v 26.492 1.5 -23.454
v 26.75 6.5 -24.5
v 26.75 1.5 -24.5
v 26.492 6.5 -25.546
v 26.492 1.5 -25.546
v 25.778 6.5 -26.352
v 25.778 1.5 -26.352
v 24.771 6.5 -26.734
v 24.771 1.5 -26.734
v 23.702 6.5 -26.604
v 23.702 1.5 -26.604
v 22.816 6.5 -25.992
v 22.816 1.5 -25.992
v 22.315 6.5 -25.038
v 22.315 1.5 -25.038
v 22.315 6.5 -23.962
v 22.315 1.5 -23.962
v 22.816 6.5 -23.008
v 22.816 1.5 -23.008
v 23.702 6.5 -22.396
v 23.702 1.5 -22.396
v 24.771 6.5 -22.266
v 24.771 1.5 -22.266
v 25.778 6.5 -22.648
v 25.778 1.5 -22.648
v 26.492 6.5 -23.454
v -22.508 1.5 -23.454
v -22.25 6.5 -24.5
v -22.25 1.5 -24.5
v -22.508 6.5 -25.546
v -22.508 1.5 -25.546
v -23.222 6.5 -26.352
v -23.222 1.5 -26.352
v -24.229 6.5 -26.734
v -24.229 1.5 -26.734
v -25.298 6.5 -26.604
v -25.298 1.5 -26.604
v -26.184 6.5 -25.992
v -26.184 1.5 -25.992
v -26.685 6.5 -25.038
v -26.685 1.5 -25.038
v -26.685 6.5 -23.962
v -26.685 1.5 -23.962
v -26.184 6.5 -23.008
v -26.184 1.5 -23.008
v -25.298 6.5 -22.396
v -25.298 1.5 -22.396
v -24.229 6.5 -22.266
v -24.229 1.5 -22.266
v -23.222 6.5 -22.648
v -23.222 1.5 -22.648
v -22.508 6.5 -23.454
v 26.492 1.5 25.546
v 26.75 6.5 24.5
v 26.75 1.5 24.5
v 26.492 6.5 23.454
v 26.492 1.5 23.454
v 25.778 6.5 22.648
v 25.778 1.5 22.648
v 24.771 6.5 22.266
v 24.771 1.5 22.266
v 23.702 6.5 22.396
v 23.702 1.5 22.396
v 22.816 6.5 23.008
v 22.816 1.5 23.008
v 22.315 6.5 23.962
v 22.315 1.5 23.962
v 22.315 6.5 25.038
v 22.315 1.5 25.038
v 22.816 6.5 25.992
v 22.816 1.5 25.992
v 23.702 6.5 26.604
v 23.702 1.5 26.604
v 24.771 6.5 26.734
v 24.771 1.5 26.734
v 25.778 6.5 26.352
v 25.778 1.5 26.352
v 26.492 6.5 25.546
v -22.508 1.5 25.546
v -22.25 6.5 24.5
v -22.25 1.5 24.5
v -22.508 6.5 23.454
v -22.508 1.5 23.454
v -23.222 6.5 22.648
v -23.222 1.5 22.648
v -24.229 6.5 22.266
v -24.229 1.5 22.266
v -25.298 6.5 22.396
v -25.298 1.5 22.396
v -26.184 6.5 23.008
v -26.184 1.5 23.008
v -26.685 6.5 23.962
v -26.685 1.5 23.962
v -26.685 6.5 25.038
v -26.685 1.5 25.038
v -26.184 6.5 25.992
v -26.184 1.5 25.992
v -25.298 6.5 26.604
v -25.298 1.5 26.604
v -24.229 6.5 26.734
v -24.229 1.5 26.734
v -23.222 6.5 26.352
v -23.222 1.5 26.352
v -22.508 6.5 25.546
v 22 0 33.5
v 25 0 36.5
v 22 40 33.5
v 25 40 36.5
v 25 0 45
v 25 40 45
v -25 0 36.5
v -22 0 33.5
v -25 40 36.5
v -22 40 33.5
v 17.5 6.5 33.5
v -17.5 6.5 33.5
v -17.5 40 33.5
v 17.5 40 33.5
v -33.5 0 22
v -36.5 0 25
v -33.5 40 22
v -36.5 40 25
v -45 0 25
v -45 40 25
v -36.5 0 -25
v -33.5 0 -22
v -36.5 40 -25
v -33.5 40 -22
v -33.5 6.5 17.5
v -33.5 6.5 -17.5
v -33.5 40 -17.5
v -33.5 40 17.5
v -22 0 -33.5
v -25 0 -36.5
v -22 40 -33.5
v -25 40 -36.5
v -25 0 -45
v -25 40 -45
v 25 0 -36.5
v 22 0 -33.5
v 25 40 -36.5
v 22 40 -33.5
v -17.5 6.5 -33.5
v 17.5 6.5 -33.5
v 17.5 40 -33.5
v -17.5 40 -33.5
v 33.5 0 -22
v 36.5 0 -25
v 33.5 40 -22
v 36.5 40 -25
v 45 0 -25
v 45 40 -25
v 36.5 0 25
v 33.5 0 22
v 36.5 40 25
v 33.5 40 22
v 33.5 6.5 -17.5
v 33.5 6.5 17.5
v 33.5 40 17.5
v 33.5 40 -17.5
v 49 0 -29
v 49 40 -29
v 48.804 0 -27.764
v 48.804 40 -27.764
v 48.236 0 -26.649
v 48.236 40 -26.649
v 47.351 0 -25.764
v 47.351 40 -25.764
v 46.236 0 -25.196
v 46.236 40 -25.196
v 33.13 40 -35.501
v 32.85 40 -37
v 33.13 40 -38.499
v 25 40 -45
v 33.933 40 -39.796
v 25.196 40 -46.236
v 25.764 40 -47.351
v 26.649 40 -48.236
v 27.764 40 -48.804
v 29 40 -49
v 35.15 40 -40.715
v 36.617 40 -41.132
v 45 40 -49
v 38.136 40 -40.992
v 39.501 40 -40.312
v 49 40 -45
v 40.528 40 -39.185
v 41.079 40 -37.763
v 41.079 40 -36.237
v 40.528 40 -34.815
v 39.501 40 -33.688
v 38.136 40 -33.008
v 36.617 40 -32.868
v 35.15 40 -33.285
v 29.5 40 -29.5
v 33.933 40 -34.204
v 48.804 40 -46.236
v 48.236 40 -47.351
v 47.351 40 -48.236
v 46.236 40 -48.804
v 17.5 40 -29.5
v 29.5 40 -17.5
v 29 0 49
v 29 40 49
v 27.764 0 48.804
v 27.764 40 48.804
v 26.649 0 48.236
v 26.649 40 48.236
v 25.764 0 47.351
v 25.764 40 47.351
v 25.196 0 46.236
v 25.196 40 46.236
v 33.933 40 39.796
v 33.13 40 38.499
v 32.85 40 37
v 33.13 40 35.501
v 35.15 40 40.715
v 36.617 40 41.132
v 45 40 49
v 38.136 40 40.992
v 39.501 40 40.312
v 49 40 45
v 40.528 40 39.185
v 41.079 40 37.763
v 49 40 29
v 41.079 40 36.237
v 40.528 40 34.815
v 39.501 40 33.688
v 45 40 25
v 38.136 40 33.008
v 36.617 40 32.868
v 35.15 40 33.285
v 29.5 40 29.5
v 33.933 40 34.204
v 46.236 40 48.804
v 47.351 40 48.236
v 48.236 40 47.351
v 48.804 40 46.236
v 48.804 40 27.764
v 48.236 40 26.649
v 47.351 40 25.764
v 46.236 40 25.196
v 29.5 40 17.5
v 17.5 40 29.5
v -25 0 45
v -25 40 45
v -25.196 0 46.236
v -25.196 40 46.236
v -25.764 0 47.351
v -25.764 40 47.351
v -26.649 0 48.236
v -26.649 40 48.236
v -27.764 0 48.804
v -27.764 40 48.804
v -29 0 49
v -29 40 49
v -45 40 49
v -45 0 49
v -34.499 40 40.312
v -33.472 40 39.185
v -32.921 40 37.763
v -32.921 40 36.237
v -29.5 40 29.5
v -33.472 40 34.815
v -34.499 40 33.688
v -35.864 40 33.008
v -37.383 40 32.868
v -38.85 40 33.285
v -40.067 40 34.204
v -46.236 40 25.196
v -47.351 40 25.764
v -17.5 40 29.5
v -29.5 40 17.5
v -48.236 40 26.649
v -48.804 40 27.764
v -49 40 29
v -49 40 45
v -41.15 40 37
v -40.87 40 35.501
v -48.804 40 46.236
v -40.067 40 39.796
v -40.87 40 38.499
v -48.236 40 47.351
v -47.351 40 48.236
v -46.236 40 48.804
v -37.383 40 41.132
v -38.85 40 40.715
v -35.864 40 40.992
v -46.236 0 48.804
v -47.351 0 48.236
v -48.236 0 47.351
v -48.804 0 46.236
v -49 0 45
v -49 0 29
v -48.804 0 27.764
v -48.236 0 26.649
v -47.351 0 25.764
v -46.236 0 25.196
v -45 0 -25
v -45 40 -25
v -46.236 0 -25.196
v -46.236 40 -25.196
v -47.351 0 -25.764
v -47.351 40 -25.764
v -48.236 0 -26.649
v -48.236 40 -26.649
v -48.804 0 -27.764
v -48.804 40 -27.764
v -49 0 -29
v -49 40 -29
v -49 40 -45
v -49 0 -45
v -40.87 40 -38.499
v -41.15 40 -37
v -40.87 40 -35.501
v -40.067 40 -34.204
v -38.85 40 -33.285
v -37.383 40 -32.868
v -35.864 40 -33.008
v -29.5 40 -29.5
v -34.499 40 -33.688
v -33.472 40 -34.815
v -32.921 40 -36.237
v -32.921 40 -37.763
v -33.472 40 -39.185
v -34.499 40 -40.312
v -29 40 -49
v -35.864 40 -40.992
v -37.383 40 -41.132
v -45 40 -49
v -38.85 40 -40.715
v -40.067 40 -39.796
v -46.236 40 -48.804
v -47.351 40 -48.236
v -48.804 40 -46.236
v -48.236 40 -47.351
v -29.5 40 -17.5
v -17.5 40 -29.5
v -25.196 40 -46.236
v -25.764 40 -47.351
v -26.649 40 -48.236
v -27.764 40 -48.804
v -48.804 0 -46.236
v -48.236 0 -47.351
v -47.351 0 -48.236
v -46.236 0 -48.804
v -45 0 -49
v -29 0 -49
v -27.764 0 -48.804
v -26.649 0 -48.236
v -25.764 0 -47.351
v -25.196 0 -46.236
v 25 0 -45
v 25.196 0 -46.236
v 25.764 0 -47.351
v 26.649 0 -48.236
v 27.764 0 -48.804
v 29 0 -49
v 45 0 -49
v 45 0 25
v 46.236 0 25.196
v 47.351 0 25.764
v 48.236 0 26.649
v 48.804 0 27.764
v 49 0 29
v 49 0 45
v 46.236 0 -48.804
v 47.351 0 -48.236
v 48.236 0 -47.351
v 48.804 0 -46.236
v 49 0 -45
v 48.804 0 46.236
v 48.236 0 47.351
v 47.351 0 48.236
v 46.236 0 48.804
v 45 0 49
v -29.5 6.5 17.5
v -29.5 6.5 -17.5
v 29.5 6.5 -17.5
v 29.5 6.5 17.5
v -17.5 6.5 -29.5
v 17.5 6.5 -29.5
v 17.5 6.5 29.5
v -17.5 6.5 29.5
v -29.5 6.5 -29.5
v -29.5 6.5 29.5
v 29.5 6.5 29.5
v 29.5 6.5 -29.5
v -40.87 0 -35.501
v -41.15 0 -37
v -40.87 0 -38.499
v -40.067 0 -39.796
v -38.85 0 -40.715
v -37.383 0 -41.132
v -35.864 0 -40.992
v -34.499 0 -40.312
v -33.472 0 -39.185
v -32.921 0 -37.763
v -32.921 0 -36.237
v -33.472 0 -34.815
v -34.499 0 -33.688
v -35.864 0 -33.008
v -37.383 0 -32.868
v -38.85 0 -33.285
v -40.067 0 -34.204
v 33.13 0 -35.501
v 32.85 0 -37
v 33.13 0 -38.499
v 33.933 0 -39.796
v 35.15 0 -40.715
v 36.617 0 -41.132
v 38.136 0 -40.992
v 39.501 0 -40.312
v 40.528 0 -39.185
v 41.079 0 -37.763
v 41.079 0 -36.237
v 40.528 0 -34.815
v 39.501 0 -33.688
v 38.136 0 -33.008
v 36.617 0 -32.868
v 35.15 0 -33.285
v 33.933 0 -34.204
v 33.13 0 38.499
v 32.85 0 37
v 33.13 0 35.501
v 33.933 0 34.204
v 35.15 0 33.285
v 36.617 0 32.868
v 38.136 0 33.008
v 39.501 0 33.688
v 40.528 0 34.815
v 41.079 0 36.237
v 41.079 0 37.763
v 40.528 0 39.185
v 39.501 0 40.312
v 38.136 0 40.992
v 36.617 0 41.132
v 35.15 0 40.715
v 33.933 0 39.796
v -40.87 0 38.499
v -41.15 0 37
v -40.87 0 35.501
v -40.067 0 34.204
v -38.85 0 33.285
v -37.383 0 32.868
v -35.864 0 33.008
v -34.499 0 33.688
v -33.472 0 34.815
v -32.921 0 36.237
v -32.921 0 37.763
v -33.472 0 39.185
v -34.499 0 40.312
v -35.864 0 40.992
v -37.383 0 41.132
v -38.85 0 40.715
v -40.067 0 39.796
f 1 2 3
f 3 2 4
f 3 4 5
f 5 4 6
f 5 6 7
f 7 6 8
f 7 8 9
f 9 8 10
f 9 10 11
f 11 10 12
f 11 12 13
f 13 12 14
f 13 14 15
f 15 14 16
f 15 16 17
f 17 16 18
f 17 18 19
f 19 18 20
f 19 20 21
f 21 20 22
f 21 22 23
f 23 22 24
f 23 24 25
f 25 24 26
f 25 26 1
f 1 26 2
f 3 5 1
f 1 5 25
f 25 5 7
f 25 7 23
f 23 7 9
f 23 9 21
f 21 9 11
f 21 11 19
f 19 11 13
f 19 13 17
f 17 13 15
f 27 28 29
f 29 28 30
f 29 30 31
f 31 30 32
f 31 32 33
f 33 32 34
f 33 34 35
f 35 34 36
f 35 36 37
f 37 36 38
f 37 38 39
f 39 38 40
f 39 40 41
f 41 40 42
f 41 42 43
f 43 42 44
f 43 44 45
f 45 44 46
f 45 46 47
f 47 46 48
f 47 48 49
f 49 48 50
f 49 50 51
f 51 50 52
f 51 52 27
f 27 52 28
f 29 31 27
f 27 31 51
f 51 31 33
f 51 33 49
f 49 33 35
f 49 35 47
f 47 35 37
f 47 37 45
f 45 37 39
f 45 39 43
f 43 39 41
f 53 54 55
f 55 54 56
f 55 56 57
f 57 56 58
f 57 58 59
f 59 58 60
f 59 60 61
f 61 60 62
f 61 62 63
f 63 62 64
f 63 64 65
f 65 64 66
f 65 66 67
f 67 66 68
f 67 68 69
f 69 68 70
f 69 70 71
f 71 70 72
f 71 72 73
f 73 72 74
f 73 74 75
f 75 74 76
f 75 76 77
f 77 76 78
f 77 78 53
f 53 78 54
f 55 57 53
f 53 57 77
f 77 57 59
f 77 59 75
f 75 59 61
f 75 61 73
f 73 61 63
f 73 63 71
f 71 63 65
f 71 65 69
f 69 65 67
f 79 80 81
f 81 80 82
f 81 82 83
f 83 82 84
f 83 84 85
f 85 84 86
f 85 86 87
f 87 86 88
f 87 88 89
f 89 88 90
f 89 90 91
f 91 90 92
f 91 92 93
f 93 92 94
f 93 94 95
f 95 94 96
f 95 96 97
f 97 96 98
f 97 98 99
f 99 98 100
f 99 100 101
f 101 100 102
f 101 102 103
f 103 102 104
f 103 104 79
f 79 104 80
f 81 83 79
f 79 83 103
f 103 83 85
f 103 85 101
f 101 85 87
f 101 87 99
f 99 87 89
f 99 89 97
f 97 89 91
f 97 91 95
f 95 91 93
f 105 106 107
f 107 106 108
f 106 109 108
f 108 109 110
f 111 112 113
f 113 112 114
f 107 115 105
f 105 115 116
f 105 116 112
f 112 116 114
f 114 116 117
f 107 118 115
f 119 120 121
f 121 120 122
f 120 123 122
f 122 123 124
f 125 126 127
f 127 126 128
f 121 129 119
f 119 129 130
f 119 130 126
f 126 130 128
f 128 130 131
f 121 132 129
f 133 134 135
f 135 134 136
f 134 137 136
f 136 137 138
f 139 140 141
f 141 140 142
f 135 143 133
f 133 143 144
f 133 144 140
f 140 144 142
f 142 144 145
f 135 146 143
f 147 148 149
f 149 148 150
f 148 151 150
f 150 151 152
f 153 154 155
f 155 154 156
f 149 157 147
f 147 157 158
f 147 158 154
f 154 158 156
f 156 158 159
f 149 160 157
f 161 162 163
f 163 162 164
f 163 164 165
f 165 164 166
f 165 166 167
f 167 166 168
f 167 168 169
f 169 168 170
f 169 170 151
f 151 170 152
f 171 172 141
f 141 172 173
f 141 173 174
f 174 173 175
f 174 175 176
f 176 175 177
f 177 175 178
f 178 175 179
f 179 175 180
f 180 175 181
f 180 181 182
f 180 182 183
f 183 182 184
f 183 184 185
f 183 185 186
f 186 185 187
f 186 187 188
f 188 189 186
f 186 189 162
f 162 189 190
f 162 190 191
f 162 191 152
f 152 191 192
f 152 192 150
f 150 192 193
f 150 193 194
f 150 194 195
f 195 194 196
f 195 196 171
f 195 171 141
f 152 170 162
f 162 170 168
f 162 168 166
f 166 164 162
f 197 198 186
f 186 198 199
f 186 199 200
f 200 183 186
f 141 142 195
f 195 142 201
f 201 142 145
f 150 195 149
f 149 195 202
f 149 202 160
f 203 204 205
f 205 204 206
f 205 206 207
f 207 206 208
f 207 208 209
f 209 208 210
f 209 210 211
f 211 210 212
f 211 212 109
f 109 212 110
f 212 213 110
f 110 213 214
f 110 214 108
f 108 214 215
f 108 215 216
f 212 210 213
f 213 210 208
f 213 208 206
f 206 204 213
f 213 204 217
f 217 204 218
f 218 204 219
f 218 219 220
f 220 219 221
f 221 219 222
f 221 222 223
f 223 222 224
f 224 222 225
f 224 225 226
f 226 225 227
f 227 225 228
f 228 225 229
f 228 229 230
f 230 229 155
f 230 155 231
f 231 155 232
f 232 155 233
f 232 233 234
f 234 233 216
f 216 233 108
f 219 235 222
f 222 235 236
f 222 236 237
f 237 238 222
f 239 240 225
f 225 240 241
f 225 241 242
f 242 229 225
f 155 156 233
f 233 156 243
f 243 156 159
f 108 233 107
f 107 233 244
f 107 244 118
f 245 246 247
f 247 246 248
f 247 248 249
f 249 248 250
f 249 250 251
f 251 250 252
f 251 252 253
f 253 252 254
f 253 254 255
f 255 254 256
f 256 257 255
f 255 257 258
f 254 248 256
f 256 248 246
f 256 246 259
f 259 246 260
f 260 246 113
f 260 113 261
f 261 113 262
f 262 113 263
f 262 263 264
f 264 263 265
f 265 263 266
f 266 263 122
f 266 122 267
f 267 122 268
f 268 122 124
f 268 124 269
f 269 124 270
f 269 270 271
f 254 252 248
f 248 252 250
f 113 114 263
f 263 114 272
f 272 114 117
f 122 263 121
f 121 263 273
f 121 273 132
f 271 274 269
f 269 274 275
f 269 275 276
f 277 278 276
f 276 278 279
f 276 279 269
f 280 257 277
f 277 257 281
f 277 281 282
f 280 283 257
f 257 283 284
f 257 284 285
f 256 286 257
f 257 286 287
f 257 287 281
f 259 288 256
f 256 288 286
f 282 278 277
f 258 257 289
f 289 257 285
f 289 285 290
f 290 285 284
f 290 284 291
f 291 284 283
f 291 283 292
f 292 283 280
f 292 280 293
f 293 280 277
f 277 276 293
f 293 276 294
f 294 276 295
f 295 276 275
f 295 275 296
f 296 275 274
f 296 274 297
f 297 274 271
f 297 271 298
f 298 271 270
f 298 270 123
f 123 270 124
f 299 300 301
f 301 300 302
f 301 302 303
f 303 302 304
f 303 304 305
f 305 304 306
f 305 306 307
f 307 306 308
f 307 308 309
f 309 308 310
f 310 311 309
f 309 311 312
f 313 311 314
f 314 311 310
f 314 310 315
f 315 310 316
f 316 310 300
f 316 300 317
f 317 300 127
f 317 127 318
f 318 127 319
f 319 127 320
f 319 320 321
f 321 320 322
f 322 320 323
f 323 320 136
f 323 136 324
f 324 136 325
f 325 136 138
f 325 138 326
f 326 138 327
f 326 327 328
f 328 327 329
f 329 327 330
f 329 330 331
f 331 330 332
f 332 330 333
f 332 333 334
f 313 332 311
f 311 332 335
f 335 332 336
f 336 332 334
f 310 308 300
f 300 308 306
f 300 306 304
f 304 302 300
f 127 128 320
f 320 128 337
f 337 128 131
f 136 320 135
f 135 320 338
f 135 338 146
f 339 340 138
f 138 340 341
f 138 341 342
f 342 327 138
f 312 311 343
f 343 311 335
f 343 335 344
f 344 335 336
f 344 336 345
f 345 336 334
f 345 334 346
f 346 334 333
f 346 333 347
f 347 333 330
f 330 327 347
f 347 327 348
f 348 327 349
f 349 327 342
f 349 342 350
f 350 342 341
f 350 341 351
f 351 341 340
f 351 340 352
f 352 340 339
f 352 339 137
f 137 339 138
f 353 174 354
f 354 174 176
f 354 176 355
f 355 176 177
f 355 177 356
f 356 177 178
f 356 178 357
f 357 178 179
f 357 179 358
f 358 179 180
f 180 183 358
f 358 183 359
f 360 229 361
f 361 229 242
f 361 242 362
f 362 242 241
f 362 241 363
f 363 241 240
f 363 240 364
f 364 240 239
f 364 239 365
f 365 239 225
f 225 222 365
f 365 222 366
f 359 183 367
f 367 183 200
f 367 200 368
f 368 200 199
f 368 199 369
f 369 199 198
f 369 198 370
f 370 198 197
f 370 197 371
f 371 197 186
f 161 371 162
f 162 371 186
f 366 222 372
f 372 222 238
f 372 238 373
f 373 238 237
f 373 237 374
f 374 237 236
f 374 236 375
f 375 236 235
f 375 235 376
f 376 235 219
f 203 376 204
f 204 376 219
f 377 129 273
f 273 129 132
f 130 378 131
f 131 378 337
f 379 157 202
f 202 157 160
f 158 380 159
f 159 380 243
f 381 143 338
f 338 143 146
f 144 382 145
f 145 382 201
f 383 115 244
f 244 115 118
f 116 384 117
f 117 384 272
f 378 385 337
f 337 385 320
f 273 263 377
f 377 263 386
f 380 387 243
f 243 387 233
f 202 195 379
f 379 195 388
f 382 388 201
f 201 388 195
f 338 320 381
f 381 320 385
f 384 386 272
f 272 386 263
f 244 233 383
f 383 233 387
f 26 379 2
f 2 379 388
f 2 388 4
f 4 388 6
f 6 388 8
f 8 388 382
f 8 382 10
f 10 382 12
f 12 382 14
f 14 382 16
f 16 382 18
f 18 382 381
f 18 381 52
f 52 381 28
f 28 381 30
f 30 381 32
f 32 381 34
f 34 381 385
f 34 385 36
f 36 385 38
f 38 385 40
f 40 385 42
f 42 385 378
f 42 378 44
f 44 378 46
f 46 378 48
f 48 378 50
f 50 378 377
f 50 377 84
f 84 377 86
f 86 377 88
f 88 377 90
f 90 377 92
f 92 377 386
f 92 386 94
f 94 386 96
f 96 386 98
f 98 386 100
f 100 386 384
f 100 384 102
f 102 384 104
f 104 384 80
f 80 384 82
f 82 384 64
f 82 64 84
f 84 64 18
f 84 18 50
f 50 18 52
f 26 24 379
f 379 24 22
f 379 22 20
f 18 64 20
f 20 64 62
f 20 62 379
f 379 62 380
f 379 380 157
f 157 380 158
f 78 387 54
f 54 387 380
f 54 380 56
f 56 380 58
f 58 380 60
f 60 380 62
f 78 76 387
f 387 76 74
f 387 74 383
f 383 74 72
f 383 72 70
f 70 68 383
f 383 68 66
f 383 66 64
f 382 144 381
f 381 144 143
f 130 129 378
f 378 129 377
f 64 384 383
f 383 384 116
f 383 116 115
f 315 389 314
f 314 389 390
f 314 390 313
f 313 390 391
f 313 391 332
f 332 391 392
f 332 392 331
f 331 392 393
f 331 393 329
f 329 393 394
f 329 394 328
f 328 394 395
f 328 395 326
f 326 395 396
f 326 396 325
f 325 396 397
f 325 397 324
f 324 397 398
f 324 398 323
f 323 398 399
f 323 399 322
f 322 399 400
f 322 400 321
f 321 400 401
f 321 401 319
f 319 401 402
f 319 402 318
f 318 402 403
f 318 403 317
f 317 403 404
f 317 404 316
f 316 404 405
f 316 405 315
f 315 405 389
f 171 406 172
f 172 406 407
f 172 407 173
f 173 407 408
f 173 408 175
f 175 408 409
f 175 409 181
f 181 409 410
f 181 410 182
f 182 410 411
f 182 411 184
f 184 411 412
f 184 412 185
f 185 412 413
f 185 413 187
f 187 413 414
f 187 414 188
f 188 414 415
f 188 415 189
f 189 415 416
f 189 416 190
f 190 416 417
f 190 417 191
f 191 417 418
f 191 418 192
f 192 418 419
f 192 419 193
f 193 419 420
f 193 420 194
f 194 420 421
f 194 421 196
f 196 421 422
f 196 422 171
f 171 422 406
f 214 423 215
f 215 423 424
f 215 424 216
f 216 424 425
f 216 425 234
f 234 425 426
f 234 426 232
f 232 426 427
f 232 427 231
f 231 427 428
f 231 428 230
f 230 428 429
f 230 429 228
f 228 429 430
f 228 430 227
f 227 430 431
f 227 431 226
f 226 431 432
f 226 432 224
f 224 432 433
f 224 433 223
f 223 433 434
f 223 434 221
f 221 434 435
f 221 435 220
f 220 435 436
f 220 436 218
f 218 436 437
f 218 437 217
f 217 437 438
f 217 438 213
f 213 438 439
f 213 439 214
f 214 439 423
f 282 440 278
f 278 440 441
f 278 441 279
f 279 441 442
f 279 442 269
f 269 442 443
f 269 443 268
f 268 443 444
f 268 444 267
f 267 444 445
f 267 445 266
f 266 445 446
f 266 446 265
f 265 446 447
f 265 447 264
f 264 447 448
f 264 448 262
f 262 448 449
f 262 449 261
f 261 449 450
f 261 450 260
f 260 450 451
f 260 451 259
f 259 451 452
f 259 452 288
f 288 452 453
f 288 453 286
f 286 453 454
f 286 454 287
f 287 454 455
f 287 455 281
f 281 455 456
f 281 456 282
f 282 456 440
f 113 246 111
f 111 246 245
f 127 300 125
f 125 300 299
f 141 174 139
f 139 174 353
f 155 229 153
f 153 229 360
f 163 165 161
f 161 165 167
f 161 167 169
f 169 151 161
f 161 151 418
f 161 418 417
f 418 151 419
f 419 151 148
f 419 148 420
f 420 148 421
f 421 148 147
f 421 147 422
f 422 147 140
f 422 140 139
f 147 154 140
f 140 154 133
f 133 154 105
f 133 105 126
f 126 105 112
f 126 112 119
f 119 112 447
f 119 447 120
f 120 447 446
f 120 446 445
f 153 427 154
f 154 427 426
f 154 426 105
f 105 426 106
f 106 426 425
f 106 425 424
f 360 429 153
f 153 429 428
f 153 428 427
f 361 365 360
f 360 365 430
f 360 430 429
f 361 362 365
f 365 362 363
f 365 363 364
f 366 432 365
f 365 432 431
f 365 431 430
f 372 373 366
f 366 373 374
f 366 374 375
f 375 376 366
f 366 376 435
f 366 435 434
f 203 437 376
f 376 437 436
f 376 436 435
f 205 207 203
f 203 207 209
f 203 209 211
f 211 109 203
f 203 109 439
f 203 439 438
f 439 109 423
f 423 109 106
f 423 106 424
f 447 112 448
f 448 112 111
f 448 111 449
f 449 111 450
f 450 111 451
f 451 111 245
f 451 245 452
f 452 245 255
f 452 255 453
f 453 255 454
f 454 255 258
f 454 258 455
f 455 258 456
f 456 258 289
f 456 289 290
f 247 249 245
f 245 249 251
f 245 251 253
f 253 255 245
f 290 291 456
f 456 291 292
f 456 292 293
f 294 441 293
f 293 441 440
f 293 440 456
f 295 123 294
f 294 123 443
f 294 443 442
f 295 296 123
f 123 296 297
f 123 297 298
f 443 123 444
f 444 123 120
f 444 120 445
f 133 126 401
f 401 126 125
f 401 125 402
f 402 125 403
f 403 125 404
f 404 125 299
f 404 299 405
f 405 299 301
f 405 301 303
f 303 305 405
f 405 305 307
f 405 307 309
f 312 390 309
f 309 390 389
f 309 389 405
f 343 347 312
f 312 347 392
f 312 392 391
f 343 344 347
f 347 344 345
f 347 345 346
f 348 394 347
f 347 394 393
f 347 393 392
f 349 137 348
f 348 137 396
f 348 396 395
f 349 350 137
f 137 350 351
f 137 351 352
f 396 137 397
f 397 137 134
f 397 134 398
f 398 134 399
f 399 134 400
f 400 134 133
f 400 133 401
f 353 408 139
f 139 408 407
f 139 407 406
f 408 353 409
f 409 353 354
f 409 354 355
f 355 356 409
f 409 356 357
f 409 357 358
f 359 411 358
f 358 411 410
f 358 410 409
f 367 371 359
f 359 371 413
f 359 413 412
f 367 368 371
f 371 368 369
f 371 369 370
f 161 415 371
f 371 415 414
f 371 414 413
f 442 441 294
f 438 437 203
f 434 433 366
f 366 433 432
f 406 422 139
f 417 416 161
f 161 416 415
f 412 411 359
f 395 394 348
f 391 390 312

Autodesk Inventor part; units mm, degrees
ref_plane "YZ Plane" through (0, 0, 0) normal (1, 0, 0) x (0, 1, 0)
ref_plane "XZ Plane" through (0, 0, 0) normal (0, 1, 0) x (-1, 0, 0)
ref_plane "XY Plane" through (0, 0, 0) normal (0, 0, 1) x (1, 0, 0)
sketch "Boceto1" plane through (0, 0, 0) normal (0, 1, 0) x (-1, 0, 0)
  circle A0 centre (37, 37) radius 4.15
  line L0 (25, -33.5) -> (25, -49)
  line L1 (25, -49) -> (49, -49)
  line L2 (49, -49) -> (49, -25)
  line L3 (49, -25) -> (33.5, -25)
  line L4 (33.5, -25) -> (33.5, 25)
  line L5 (33.5, 25) -> (49, 25)
  line L6 (49, 25) -> (49, 49)
  line L7 (49, 49) -> (25, 49)
  line L8 (25, 49) -> (25, 33.5)
  line L9 (25, 33.5) -> (-25, 33.5)
  line L10 (-25, 33.5) -> (-25, 49)
  line L11 (-25, 49) -> (-49, 49)
  line L12 (-49, 49) -> (-49, 25)
  line L13 (-49, 25) -> (-33.5, 25)
  line L14 (-33.5, 25) -> (-33.5, -25)
  line L15 (-33.5, -25) -> (-49, -25)
  line L16 (-49, -25) -> (-49, -49)
  line L17 (-49, -49) -> (-25, -49)
  line L18 (-25, -49) -> (-25, -33.5)
  line L19 (-25, -33.5) -> (25, -33.5)
  circle A1 centre (0, 0) radius 5 construction
  line L20 (49, -49) -> (-49, -49) construction
  line L21 (-49, -49) -> (-49, 49)
  line L22 (-49, 49) -> (49, 49) construction
  line L23 (49, 49) -> (49, -49) construction
  line L24 (49, -49) -> (25.0011, -49) construction
  line L25 (25.0011, -49) -> (25.0011, -25) construction
  line L26 (49, -25) -> (49, -49) construction
  line L27 (0, -49) -> (0, 49) construction
  line L28 (49, 0) -> (-49, 0) construction
  line L29 (49, 49) -> (25, 49) construction
  line L30 (25, 49) -> (25, 25) construction
  line L31 (25, 25) -> (49, 25) construction
  line L32 (49, 25) -> (49, 49) construction
  line L33 (49, 49) -> (25, 25) construction
  line L34 (49, 25) -> (25, 49) construction
  circle A2 centre (-37, 37) radius 4.15
  circle A3 centre (-37, -37) radius 4.15
  circle A4 centre (37, -37) radius 4.15
  line L35 (29.5, 29.5) -> (-29.5, 29.5)
  line L36 (-29.5, 29.5) -> (-29.5, -29.5)
  line L37 (-29.5, -29.5) -> (29.5, -29.5)
  line L38 (29.5, -29.5) -> (29.5, 29.5)
  line L39 (29.5, 29.5) -> (-29.5, -29.5) construction
  line L40 (-29.5, 29.5) -> (29.5, -29.5) construction
  circle A5 centre (0, 0) radius 2.5 construction
  point P0 (33.5, 0)
  point P1 (0, -33.5)
  point P2 (0, 33.5)
  point P3 (-33.5, 0)
  dimension "d0" = 33.5
  dimension "d1" = 33.5
  dimension "d4" = 8.3
  dimension "d6" = 49
  dimension "d7" = 49
  dimension "d8" = 98
  dimension "d9" = 98
  dimension "d10" = 15.5
  dimension "d11" = 15.5
  dimension "d12" = 15.5
  dimension "d13" = 15.5
  dimension "d14" = 50
  dimension "d15" = 50
  dimension "d16" = 15.5
  dimension "d17" = 15.5
  dimension "d18" = 15.5
  dimension "d19" = 50
  dimension "d20" = 25
  dimension "d21" = 25
  dimension "d22" = 25
  dimension "d23" = 25
  dimension "d24" = 10
  dimension "d26" = 8.5
  dimension "d27" = 8.5
  dimension "d28" = 24
  dimension "d29" = 15.5
  dimension "d30" = 24
  dimension "d31" = 8.5
  dimension "d32" = 24
  dimension "d33" = 24
  dimension "d36" = 360
  dimension "d41" = 4
  dimension "d46" = 5
  dimension "d49" = 4
extrude "Extrusión1" add sketch "Boceto1" along normal blind 40 contours L19 L18 L17 L16 L15 L14 L13 L12 L11 L10 L9 L8 L7 L6 L5 L4 L3 L2 L1 L0
extrude "Extrusión2" add sketch "Boceto1" along normal blind 6.5 contours L38 L37 L36 L35
sketch "Boceto2" plane through (0, 40, 0) normal (0, 1, 0) x (1, 0, 0)
  line L0 (33.5, -25) -> (33.5, 25) projected
  line L1 (-33.5, 17.5) -> (33.5, 17.5)
  line L2 (33.5, 17.5) -> (33.5, -17.5)
  line L3 (33.5, -17.5) -> (-33.5, -17.5)
  line L4 (-33.5, -17.5) -> (-33.5, 17.5)
  line L5 (-33.5, 17.5) -> (33.5, -17.5) construction
  line L6 (33.5, 17.5) -> (-33.5, -17.5) construction
  line L7 (17.5, 33.5) -> (-17.5, 33.5)
  line L8 (-17.5, 33.5) -> (-17.5, -33.5)
  line L9 (-17.5, -33.5) -> (17.5, -33.5)
  line L10 (17.5, -33.5) -> (17.5, 33.5)
  line L11 (17.5, 33.5) -> (-17.5, -33.5) construction
  line L12 (-17.5, 33.5) -> (17.5, -33.5) construction
  line L13 (-25, -33.5) -> (25, -33.5) projected
  line L14 (29.5, 29.5) -> (29.5, -29.5) projected
  line L15 (-29.5, 29.5) -> (29.5, 29.5) projected
  line L16 (-29.5, -29.5) -> (-29.5, 29.5) projected
  line L17 (29.5, -29.5) -> (-29.5, -29.5) projected
  point P0 (0, 0)
  point P1 (0, 0)
  point P2 (-17.5, 29.5)
  point P3 (17.5, 29.5)
  point P4 (-29.5, -17.5)
  point P5 (-29.5, 17.5)
  point P6 (17.5, -29.5)
  point P7 (-17.5, -29.5)
  point P8 (29.5, 17.5)
  point P9 (29.5, -17.5)
  dimension "d50" = 35
  dimension "d51" = 35
extrude "Extrusión5" cut sketch "Boceto2" against normal up to surface (33.5 mm away) contours L3 L14 L1 L0 | L10 L9 L8 L17 | L15 L8 L7 L10 | L3 L4 L1 L16
fillet "Empalme1" radius 4 12 edges at (49, 20, 49) (49, 20, -49) (49, 20, 25) (25, 20, -49) (-25, 20, -49) (-49, 20, -49) (-49, 20, -25) (-49, 20, 25) (-49, 20, 49) (-25, 20, 49) (25, 20, 49) (49, 20, -25)
chamfer "Chaflán1" distance 3 angle 45 8 edges at (33.5, 20, 25) (33.5, 20, -25) (25, 20, -33.5) (-25, 20, -33.5) (-33.5, 20, -25) (-33.5, 20, 25) (-25, 20, 33.5) (25, 20, 33.5)
sketch "Boceto3" plane through (0, 6.5, 0) normal (0, 1, 0) x (1, 0, 0)
  line L0 (-29.5, -29.5) -> (-29.5, -17.5) construction
  line L1 (29.5, 29.5) -> (29.5, 17.5) construction
  line L2 (-29.5, -29.5) -> (29.5, -29.5)
  line L3 (29.5, -29.5) -> (29.5, 29.5)
  line L4 (29.5, 29.5) -> (-29.5, 29.5)
  line L5 (-29.5, 29.5) -> (-29.5, -29.5)
  line L6 (-29.5, -29.5) -> (-24.5, -29.5) construction
  line L7 (-24.5, -29.5) -> (-24.5, -24.5) construction
  line L8 (-24.5, -24.5) -> (-29.5, -24.5) construction
  line L9 (-29.5, -24.5) -> (-29.5, -29.5) construction
  line L10 (-29.5, 29.5) -> (-24.5, 29.5) construction
  line L11 (-24.5, 29.5) -> (-24.5, 24.5) construction
  line L12 (-24.5, 24.5) -> (-29.5, 24.5) construction
  line L13 (-29.5, 24.5) -> (-29.5, 29.5) construction
  line L14 (29.5, 29.5) -> (24.5, 29.5) construction
  line L15 (24.5, 29.5) -> (24.5, 24.5) construction
  line L16 (24.5, 24.5) -> (29.5, 24.5) construction
  line L17 (29.5, 24.5) -> (29.5, 29.5) construction
  line L18 (29.5, -29.5) -> (24.5, -29.5) construction
  line L19 (24.5, -29.5) -> (24.5, -24.5) construction
  line L20 (24.5, -24.5) -> (29.5, -24.5) construction
  line L21 (29.5, -24.5) -> (29.5, -29.5) construction
  circle A0 centre (24.5, -24.5) radius 2.25
  circle A1 centre (24.5, 24.5) radius 2.25
  circle A2 centre (-24.5, 24.5) radius 2.25
  circle A3 centre (-24.5, -24.5) radius 2.25
  point P0 (0, 0)
  dimension "d61" = 5
  dimension "d62" = 5
  dimension "d63" = 5
  dimension "d64" = 5
  dimension "d65" = 5
  dimension "d66" = 5
  dimension "d67" = 5
  dimension "d68" = 5
  dimension "d69" = 4.5
  dimension "d70" = 4.5
  dimension "d71" = 4.5
  dimension "d72" = 4.5
extrude "Extrusión6" cut sketch "Boceto3" against normal blind 5 contours A0 | A1 | A2 | A3
properties part number "Electronica_3DPrint"
